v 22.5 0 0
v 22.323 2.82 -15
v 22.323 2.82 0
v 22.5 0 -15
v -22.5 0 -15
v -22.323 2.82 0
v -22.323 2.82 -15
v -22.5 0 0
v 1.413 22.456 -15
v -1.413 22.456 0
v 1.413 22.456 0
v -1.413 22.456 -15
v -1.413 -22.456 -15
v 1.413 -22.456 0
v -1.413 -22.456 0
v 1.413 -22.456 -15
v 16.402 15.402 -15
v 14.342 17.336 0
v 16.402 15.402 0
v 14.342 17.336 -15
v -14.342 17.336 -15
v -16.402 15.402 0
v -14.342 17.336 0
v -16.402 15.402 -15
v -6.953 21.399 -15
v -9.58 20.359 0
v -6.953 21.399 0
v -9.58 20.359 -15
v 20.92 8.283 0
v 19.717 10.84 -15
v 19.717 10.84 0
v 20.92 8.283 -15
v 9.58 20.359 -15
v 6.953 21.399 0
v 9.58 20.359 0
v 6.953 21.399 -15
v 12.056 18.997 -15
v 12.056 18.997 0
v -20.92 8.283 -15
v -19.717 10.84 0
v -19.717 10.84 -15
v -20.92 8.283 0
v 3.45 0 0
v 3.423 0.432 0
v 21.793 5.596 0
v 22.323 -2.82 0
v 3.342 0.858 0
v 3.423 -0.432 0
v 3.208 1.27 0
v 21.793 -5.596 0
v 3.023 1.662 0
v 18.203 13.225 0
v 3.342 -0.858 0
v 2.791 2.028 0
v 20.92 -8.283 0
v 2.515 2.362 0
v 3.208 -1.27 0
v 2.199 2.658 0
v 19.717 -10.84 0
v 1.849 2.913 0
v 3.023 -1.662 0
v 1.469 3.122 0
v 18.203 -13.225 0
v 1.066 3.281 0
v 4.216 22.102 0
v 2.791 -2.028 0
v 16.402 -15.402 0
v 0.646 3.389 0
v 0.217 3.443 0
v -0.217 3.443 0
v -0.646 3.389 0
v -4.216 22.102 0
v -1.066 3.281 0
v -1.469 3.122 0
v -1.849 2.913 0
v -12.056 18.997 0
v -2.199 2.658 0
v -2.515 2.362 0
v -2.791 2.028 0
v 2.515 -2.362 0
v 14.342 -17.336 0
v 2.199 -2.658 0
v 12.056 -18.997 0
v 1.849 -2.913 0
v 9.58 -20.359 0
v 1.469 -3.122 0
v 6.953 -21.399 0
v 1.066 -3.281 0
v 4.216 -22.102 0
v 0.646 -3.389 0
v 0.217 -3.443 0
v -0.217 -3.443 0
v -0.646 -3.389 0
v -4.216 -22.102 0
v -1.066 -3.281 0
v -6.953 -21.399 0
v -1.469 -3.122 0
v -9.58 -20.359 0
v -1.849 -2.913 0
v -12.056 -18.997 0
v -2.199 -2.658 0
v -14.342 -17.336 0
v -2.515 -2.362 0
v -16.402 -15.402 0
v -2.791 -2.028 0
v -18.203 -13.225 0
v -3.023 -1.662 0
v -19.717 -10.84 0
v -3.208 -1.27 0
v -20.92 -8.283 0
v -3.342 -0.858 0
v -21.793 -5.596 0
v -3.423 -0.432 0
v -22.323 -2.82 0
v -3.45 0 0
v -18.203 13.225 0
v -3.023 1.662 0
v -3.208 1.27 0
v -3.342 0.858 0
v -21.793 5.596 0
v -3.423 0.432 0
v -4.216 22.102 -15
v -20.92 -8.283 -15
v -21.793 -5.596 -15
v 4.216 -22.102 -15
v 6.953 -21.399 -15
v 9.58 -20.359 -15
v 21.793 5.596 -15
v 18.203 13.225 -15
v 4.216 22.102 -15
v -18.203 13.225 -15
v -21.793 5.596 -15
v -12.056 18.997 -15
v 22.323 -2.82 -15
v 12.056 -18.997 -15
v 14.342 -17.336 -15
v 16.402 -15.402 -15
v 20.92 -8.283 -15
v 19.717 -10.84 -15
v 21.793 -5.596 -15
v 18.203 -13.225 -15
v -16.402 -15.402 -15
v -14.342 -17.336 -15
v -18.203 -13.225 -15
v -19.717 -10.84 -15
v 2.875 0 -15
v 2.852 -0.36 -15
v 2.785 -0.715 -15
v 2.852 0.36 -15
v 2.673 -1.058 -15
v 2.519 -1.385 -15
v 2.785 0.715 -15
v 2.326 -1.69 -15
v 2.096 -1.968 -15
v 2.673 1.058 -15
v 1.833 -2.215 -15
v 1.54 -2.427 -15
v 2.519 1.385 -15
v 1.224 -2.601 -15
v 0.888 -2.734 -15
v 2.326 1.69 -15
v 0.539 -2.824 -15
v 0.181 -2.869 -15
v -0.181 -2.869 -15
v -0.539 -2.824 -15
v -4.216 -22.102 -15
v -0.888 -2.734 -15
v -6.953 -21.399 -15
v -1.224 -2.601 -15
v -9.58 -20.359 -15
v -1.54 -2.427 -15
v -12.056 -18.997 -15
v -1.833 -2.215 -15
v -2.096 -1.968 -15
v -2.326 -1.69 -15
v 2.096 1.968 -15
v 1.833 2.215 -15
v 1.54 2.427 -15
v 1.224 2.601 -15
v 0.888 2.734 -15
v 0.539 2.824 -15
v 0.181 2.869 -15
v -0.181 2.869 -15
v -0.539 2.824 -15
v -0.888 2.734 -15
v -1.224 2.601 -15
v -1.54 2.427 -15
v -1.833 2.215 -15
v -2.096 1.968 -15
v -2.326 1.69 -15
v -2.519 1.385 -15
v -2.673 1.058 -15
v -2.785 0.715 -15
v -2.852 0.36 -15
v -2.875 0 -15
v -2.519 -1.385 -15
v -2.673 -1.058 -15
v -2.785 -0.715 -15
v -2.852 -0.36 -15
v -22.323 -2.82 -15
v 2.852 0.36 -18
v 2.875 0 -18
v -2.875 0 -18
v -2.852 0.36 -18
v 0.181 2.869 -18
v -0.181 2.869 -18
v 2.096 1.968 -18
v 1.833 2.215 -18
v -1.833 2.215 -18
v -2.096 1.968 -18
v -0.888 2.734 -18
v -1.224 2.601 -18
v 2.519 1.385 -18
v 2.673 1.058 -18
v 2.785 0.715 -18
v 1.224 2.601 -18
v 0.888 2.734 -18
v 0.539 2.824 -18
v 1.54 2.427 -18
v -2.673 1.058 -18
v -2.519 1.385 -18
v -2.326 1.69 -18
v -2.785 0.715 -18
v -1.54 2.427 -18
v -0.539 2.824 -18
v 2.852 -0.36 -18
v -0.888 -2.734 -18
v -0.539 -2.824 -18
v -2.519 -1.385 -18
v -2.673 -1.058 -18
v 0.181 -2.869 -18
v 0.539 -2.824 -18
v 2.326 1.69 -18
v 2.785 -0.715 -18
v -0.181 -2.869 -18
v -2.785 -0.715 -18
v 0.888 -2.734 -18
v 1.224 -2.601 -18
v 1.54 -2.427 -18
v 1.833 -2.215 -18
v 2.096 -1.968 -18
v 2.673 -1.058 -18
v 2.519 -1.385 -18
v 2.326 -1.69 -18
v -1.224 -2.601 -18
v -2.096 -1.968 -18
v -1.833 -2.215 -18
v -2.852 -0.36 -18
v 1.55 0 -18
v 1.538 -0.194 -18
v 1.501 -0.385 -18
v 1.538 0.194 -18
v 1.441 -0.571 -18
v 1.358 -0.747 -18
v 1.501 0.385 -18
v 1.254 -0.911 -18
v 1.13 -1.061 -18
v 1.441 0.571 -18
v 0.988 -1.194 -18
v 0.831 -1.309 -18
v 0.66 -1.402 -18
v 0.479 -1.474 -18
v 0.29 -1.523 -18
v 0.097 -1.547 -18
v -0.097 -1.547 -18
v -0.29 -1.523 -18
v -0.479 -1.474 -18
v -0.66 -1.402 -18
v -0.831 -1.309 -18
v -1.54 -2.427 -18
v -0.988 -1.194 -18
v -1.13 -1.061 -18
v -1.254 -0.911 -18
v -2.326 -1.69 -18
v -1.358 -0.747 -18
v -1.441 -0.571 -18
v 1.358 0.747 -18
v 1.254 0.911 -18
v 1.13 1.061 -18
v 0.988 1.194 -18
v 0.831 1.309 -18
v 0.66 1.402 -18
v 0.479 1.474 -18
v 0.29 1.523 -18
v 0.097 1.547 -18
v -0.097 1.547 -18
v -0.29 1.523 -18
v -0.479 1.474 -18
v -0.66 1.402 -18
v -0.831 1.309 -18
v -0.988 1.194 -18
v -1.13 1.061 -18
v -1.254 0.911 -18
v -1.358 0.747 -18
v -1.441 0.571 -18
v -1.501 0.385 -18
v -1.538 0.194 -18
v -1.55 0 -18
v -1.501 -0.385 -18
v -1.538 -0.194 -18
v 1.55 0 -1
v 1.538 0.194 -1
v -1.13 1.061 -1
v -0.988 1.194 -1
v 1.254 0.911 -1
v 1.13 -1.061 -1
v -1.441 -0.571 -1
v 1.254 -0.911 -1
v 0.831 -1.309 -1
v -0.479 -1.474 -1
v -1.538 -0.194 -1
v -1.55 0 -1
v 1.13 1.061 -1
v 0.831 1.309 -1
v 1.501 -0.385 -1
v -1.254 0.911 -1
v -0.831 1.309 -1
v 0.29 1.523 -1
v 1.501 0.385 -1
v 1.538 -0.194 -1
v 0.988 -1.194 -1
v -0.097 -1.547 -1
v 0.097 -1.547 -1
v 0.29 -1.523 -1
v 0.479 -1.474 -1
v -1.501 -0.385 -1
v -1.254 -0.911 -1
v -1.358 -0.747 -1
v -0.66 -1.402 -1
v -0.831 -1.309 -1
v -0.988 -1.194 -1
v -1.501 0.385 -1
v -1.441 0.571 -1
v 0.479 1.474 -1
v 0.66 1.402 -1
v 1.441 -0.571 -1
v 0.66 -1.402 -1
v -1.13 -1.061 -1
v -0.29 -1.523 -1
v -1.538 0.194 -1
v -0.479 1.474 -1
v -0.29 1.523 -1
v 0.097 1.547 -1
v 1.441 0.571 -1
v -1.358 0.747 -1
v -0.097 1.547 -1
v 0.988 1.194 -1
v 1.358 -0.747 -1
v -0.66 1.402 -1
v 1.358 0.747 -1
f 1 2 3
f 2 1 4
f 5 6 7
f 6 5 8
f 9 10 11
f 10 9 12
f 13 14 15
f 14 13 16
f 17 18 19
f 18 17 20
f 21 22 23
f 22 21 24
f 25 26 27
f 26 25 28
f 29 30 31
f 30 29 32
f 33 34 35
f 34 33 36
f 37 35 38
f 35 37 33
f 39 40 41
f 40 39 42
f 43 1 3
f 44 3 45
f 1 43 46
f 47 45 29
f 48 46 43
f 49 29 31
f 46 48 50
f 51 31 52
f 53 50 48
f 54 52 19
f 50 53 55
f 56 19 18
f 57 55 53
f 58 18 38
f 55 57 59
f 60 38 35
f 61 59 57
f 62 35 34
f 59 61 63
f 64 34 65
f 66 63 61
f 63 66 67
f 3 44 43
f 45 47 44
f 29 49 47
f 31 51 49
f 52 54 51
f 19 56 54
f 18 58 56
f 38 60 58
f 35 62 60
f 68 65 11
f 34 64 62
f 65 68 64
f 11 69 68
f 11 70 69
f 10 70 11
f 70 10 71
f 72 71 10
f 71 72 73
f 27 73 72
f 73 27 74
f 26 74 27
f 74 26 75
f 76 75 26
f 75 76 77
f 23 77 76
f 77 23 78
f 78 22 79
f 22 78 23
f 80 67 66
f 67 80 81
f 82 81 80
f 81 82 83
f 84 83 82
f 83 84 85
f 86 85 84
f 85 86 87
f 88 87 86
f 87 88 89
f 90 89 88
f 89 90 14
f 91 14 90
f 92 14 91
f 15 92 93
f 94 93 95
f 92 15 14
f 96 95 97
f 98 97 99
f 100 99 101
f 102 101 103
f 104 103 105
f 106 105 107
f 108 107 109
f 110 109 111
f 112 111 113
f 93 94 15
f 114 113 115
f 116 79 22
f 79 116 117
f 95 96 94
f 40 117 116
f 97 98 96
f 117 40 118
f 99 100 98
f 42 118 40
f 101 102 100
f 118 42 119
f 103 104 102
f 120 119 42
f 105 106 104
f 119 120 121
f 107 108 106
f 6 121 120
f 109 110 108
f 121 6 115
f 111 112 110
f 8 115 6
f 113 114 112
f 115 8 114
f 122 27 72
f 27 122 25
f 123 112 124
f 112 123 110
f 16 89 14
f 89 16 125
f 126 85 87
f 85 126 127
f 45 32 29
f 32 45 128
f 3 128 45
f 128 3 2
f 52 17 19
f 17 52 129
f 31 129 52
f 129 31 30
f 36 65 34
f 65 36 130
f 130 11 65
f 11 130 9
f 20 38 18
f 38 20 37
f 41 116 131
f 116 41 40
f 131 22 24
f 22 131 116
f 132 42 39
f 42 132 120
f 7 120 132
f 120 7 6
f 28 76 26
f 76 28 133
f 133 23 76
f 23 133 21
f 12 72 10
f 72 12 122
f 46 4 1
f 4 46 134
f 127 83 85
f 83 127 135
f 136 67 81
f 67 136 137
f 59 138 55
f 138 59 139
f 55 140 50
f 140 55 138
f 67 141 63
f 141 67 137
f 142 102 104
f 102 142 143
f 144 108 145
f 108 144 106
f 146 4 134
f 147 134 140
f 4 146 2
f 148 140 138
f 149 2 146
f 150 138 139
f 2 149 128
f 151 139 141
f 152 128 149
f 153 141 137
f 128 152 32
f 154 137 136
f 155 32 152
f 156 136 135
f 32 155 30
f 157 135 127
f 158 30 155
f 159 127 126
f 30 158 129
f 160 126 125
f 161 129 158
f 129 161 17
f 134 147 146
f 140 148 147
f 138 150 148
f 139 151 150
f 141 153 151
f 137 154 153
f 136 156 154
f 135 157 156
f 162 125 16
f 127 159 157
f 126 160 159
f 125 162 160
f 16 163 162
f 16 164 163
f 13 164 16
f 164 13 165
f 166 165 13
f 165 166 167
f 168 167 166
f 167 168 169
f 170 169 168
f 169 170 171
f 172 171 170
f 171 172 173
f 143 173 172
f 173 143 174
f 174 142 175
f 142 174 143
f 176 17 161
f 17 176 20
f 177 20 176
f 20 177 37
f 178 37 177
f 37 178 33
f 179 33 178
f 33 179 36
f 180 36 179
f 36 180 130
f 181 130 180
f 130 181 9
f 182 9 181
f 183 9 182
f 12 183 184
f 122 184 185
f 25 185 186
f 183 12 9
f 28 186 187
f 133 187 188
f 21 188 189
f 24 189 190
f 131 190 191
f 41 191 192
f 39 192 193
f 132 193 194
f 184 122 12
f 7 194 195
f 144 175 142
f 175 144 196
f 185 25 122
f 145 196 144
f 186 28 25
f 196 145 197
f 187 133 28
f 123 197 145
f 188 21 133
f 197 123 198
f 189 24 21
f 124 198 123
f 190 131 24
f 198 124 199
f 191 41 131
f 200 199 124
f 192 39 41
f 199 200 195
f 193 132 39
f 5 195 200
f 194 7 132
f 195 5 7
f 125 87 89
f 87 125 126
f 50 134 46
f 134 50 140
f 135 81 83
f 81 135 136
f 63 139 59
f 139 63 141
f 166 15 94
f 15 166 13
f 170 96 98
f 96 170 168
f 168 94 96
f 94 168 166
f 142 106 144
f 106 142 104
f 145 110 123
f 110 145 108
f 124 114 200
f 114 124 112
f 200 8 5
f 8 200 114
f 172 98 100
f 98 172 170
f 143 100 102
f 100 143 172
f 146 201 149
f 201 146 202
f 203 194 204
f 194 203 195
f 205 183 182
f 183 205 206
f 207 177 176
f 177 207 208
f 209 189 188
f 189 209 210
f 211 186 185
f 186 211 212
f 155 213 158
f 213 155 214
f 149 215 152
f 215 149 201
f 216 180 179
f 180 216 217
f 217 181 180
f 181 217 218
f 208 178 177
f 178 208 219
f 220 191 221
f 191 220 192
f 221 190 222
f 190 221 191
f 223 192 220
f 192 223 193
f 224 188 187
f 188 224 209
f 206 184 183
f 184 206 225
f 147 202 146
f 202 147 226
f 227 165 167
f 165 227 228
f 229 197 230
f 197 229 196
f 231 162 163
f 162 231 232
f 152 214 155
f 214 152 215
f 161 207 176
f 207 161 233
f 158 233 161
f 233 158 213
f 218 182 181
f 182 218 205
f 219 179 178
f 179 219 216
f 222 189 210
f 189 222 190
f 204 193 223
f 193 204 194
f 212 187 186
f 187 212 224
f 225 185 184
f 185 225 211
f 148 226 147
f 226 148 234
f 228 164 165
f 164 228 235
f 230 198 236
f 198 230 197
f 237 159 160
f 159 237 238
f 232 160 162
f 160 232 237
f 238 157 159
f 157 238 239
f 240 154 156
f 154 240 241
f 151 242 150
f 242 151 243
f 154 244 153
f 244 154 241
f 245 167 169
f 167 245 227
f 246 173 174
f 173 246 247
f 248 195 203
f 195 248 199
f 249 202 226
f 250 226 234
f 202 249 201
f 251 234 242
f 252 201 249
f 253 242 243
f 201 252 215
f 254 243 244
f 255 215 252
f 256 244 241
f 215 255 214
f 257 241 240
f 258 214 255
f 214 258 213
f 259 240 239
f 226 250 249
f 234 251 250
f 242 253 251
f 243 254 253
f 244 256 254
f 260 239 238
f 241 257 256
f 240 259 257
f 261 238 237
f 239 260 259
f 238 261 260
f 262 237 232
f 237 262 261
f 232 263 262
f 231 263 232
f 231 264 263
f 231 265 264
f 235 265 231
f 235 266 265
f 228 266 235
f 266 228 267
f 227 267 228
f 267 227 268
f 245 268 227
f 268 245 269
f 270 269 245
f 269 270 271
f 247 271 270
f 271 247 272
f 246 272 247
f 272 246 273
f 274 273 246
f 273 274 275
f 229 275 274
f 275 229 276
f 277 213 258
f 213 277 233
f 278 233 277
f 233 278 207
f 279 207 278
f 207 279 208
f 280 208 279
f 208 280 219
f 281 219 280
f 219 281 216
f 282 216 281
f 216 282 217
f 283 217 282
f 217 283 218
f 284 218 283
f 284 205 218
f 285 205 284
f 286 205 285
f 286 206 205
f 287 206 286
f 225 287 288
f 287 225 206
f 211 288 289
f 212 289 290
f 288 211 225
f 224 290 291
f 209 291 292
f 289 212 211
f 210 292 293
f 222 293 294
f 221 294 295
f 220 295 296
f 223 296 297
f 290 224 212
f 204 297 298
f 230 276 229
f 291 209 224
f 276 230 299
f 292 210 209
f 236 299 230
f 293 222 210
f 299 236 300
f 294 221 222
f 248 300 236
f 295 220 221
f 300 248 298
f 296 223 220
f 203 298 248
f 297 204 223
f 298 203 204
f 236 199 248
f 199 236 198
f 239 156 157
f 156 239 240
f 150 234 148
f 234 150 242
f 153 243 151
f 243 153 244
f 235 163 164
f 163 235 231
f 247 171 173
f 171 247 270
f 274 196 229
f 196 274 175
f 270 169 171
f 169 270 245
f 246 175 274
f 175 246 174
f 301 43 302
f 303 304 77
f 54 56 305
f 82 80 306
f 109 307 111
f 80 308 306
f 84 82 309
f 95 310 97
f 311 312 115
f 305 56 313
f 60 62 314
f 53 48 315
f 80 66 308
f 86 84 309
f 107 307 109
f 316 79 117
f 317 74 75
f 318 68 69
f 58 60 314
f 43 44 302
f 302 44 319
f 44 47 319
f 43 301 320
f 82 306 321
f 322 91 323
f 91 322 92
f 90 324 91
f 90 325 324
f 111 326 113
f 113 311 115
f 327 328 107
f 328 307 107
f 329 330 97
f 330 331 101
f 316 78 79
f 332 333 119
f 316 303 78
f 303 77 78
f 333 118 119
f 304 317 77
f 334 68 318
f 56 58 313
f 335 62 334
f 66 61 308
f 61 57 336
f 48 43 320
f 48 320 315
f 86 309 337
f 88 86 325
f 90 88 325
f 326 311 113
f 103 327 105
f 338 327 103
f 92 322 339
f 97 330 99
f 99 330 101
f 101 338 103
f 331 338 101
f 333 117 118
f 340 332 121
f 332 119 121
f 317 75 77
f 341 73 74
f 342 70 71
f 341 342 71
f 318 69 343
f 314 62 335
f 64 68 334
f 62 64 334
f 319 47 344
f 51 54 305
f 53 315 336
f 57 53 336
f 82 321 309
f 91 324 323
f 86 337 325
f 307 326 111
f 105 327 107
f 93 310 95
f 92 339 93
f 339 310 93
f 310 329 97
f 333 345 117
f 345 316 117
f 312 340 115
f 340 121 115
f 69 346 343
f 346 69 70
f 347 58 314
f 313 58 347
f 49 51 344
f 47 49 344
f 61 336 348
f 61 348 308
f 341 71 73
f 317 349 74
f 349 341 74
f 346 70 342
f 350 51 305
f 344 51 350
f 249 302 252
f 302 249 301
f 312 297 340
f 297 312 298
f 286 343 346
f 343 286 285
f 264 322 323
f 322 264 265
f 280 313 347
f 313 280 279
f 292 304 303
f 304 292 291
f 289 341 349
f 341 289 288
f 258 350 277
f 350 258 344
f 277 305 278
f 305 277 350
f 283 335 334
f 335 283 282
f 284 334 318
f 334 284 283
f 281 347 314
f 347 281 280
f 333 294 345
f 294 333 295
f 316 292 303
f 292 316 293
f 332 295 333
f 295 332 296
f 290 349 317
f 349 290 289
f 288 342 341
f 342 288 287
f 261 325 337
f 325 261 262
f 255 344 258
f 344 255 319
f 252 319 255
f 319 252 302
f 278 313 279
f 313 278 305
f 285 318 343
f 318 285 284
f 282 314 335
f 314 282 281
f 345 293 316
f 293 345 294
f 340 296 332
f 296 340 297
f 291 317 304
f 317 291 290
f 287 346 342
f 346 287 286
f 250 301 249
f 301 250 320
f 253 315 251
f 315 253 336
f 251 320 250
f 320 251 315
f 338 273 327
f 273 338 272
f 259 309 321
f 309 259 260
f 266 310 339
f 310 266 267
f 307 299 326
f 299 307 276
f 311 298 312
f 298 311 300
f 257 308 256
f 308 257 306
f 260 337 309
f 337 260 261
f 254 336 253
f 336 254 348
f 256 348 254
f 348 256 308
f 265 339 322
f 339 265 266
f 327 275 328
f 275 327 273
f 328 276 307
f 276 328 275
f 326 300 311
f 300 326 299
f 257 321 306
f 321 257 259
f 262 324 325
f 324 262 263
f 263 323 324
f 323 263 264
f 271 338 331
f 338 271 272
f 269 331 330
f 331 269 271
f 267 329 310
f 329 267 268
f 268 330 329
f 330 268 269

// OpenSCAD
$fn = 50;

difference() {
	union() {
		translate(v = [0, 0, -15.0]) {
			cylinder(h = 15, r = 22.5);
		}
		#translate(v = [0, 0, -18.0]) {
			cylinder(h = 18, r = 2.875);
		}
	}
	union() {
		translate(v = [0, 0, 0]) {
			rotate(a = [0, 0, 0]) {
				difference() {
					union() {
						translate(v = [0, 0, -18.0]) {
							cylinder(h = 18, r = 1.25);
						}
						translate(v = [0, 0, -1.0]) {
							cylinder(h = 1.0, r1 = 1.55, r2 = 3.45);
						}
						translate(v = [0, 0, -18.0]) {
							cylinder(h = 18, r = 1.55);
						}
						translate(v = [0, 0, -18.0]) {
							cylinder(h = 18, r = 1.25);
						}
					}
					union();
				}
			}
		}
	}
}
